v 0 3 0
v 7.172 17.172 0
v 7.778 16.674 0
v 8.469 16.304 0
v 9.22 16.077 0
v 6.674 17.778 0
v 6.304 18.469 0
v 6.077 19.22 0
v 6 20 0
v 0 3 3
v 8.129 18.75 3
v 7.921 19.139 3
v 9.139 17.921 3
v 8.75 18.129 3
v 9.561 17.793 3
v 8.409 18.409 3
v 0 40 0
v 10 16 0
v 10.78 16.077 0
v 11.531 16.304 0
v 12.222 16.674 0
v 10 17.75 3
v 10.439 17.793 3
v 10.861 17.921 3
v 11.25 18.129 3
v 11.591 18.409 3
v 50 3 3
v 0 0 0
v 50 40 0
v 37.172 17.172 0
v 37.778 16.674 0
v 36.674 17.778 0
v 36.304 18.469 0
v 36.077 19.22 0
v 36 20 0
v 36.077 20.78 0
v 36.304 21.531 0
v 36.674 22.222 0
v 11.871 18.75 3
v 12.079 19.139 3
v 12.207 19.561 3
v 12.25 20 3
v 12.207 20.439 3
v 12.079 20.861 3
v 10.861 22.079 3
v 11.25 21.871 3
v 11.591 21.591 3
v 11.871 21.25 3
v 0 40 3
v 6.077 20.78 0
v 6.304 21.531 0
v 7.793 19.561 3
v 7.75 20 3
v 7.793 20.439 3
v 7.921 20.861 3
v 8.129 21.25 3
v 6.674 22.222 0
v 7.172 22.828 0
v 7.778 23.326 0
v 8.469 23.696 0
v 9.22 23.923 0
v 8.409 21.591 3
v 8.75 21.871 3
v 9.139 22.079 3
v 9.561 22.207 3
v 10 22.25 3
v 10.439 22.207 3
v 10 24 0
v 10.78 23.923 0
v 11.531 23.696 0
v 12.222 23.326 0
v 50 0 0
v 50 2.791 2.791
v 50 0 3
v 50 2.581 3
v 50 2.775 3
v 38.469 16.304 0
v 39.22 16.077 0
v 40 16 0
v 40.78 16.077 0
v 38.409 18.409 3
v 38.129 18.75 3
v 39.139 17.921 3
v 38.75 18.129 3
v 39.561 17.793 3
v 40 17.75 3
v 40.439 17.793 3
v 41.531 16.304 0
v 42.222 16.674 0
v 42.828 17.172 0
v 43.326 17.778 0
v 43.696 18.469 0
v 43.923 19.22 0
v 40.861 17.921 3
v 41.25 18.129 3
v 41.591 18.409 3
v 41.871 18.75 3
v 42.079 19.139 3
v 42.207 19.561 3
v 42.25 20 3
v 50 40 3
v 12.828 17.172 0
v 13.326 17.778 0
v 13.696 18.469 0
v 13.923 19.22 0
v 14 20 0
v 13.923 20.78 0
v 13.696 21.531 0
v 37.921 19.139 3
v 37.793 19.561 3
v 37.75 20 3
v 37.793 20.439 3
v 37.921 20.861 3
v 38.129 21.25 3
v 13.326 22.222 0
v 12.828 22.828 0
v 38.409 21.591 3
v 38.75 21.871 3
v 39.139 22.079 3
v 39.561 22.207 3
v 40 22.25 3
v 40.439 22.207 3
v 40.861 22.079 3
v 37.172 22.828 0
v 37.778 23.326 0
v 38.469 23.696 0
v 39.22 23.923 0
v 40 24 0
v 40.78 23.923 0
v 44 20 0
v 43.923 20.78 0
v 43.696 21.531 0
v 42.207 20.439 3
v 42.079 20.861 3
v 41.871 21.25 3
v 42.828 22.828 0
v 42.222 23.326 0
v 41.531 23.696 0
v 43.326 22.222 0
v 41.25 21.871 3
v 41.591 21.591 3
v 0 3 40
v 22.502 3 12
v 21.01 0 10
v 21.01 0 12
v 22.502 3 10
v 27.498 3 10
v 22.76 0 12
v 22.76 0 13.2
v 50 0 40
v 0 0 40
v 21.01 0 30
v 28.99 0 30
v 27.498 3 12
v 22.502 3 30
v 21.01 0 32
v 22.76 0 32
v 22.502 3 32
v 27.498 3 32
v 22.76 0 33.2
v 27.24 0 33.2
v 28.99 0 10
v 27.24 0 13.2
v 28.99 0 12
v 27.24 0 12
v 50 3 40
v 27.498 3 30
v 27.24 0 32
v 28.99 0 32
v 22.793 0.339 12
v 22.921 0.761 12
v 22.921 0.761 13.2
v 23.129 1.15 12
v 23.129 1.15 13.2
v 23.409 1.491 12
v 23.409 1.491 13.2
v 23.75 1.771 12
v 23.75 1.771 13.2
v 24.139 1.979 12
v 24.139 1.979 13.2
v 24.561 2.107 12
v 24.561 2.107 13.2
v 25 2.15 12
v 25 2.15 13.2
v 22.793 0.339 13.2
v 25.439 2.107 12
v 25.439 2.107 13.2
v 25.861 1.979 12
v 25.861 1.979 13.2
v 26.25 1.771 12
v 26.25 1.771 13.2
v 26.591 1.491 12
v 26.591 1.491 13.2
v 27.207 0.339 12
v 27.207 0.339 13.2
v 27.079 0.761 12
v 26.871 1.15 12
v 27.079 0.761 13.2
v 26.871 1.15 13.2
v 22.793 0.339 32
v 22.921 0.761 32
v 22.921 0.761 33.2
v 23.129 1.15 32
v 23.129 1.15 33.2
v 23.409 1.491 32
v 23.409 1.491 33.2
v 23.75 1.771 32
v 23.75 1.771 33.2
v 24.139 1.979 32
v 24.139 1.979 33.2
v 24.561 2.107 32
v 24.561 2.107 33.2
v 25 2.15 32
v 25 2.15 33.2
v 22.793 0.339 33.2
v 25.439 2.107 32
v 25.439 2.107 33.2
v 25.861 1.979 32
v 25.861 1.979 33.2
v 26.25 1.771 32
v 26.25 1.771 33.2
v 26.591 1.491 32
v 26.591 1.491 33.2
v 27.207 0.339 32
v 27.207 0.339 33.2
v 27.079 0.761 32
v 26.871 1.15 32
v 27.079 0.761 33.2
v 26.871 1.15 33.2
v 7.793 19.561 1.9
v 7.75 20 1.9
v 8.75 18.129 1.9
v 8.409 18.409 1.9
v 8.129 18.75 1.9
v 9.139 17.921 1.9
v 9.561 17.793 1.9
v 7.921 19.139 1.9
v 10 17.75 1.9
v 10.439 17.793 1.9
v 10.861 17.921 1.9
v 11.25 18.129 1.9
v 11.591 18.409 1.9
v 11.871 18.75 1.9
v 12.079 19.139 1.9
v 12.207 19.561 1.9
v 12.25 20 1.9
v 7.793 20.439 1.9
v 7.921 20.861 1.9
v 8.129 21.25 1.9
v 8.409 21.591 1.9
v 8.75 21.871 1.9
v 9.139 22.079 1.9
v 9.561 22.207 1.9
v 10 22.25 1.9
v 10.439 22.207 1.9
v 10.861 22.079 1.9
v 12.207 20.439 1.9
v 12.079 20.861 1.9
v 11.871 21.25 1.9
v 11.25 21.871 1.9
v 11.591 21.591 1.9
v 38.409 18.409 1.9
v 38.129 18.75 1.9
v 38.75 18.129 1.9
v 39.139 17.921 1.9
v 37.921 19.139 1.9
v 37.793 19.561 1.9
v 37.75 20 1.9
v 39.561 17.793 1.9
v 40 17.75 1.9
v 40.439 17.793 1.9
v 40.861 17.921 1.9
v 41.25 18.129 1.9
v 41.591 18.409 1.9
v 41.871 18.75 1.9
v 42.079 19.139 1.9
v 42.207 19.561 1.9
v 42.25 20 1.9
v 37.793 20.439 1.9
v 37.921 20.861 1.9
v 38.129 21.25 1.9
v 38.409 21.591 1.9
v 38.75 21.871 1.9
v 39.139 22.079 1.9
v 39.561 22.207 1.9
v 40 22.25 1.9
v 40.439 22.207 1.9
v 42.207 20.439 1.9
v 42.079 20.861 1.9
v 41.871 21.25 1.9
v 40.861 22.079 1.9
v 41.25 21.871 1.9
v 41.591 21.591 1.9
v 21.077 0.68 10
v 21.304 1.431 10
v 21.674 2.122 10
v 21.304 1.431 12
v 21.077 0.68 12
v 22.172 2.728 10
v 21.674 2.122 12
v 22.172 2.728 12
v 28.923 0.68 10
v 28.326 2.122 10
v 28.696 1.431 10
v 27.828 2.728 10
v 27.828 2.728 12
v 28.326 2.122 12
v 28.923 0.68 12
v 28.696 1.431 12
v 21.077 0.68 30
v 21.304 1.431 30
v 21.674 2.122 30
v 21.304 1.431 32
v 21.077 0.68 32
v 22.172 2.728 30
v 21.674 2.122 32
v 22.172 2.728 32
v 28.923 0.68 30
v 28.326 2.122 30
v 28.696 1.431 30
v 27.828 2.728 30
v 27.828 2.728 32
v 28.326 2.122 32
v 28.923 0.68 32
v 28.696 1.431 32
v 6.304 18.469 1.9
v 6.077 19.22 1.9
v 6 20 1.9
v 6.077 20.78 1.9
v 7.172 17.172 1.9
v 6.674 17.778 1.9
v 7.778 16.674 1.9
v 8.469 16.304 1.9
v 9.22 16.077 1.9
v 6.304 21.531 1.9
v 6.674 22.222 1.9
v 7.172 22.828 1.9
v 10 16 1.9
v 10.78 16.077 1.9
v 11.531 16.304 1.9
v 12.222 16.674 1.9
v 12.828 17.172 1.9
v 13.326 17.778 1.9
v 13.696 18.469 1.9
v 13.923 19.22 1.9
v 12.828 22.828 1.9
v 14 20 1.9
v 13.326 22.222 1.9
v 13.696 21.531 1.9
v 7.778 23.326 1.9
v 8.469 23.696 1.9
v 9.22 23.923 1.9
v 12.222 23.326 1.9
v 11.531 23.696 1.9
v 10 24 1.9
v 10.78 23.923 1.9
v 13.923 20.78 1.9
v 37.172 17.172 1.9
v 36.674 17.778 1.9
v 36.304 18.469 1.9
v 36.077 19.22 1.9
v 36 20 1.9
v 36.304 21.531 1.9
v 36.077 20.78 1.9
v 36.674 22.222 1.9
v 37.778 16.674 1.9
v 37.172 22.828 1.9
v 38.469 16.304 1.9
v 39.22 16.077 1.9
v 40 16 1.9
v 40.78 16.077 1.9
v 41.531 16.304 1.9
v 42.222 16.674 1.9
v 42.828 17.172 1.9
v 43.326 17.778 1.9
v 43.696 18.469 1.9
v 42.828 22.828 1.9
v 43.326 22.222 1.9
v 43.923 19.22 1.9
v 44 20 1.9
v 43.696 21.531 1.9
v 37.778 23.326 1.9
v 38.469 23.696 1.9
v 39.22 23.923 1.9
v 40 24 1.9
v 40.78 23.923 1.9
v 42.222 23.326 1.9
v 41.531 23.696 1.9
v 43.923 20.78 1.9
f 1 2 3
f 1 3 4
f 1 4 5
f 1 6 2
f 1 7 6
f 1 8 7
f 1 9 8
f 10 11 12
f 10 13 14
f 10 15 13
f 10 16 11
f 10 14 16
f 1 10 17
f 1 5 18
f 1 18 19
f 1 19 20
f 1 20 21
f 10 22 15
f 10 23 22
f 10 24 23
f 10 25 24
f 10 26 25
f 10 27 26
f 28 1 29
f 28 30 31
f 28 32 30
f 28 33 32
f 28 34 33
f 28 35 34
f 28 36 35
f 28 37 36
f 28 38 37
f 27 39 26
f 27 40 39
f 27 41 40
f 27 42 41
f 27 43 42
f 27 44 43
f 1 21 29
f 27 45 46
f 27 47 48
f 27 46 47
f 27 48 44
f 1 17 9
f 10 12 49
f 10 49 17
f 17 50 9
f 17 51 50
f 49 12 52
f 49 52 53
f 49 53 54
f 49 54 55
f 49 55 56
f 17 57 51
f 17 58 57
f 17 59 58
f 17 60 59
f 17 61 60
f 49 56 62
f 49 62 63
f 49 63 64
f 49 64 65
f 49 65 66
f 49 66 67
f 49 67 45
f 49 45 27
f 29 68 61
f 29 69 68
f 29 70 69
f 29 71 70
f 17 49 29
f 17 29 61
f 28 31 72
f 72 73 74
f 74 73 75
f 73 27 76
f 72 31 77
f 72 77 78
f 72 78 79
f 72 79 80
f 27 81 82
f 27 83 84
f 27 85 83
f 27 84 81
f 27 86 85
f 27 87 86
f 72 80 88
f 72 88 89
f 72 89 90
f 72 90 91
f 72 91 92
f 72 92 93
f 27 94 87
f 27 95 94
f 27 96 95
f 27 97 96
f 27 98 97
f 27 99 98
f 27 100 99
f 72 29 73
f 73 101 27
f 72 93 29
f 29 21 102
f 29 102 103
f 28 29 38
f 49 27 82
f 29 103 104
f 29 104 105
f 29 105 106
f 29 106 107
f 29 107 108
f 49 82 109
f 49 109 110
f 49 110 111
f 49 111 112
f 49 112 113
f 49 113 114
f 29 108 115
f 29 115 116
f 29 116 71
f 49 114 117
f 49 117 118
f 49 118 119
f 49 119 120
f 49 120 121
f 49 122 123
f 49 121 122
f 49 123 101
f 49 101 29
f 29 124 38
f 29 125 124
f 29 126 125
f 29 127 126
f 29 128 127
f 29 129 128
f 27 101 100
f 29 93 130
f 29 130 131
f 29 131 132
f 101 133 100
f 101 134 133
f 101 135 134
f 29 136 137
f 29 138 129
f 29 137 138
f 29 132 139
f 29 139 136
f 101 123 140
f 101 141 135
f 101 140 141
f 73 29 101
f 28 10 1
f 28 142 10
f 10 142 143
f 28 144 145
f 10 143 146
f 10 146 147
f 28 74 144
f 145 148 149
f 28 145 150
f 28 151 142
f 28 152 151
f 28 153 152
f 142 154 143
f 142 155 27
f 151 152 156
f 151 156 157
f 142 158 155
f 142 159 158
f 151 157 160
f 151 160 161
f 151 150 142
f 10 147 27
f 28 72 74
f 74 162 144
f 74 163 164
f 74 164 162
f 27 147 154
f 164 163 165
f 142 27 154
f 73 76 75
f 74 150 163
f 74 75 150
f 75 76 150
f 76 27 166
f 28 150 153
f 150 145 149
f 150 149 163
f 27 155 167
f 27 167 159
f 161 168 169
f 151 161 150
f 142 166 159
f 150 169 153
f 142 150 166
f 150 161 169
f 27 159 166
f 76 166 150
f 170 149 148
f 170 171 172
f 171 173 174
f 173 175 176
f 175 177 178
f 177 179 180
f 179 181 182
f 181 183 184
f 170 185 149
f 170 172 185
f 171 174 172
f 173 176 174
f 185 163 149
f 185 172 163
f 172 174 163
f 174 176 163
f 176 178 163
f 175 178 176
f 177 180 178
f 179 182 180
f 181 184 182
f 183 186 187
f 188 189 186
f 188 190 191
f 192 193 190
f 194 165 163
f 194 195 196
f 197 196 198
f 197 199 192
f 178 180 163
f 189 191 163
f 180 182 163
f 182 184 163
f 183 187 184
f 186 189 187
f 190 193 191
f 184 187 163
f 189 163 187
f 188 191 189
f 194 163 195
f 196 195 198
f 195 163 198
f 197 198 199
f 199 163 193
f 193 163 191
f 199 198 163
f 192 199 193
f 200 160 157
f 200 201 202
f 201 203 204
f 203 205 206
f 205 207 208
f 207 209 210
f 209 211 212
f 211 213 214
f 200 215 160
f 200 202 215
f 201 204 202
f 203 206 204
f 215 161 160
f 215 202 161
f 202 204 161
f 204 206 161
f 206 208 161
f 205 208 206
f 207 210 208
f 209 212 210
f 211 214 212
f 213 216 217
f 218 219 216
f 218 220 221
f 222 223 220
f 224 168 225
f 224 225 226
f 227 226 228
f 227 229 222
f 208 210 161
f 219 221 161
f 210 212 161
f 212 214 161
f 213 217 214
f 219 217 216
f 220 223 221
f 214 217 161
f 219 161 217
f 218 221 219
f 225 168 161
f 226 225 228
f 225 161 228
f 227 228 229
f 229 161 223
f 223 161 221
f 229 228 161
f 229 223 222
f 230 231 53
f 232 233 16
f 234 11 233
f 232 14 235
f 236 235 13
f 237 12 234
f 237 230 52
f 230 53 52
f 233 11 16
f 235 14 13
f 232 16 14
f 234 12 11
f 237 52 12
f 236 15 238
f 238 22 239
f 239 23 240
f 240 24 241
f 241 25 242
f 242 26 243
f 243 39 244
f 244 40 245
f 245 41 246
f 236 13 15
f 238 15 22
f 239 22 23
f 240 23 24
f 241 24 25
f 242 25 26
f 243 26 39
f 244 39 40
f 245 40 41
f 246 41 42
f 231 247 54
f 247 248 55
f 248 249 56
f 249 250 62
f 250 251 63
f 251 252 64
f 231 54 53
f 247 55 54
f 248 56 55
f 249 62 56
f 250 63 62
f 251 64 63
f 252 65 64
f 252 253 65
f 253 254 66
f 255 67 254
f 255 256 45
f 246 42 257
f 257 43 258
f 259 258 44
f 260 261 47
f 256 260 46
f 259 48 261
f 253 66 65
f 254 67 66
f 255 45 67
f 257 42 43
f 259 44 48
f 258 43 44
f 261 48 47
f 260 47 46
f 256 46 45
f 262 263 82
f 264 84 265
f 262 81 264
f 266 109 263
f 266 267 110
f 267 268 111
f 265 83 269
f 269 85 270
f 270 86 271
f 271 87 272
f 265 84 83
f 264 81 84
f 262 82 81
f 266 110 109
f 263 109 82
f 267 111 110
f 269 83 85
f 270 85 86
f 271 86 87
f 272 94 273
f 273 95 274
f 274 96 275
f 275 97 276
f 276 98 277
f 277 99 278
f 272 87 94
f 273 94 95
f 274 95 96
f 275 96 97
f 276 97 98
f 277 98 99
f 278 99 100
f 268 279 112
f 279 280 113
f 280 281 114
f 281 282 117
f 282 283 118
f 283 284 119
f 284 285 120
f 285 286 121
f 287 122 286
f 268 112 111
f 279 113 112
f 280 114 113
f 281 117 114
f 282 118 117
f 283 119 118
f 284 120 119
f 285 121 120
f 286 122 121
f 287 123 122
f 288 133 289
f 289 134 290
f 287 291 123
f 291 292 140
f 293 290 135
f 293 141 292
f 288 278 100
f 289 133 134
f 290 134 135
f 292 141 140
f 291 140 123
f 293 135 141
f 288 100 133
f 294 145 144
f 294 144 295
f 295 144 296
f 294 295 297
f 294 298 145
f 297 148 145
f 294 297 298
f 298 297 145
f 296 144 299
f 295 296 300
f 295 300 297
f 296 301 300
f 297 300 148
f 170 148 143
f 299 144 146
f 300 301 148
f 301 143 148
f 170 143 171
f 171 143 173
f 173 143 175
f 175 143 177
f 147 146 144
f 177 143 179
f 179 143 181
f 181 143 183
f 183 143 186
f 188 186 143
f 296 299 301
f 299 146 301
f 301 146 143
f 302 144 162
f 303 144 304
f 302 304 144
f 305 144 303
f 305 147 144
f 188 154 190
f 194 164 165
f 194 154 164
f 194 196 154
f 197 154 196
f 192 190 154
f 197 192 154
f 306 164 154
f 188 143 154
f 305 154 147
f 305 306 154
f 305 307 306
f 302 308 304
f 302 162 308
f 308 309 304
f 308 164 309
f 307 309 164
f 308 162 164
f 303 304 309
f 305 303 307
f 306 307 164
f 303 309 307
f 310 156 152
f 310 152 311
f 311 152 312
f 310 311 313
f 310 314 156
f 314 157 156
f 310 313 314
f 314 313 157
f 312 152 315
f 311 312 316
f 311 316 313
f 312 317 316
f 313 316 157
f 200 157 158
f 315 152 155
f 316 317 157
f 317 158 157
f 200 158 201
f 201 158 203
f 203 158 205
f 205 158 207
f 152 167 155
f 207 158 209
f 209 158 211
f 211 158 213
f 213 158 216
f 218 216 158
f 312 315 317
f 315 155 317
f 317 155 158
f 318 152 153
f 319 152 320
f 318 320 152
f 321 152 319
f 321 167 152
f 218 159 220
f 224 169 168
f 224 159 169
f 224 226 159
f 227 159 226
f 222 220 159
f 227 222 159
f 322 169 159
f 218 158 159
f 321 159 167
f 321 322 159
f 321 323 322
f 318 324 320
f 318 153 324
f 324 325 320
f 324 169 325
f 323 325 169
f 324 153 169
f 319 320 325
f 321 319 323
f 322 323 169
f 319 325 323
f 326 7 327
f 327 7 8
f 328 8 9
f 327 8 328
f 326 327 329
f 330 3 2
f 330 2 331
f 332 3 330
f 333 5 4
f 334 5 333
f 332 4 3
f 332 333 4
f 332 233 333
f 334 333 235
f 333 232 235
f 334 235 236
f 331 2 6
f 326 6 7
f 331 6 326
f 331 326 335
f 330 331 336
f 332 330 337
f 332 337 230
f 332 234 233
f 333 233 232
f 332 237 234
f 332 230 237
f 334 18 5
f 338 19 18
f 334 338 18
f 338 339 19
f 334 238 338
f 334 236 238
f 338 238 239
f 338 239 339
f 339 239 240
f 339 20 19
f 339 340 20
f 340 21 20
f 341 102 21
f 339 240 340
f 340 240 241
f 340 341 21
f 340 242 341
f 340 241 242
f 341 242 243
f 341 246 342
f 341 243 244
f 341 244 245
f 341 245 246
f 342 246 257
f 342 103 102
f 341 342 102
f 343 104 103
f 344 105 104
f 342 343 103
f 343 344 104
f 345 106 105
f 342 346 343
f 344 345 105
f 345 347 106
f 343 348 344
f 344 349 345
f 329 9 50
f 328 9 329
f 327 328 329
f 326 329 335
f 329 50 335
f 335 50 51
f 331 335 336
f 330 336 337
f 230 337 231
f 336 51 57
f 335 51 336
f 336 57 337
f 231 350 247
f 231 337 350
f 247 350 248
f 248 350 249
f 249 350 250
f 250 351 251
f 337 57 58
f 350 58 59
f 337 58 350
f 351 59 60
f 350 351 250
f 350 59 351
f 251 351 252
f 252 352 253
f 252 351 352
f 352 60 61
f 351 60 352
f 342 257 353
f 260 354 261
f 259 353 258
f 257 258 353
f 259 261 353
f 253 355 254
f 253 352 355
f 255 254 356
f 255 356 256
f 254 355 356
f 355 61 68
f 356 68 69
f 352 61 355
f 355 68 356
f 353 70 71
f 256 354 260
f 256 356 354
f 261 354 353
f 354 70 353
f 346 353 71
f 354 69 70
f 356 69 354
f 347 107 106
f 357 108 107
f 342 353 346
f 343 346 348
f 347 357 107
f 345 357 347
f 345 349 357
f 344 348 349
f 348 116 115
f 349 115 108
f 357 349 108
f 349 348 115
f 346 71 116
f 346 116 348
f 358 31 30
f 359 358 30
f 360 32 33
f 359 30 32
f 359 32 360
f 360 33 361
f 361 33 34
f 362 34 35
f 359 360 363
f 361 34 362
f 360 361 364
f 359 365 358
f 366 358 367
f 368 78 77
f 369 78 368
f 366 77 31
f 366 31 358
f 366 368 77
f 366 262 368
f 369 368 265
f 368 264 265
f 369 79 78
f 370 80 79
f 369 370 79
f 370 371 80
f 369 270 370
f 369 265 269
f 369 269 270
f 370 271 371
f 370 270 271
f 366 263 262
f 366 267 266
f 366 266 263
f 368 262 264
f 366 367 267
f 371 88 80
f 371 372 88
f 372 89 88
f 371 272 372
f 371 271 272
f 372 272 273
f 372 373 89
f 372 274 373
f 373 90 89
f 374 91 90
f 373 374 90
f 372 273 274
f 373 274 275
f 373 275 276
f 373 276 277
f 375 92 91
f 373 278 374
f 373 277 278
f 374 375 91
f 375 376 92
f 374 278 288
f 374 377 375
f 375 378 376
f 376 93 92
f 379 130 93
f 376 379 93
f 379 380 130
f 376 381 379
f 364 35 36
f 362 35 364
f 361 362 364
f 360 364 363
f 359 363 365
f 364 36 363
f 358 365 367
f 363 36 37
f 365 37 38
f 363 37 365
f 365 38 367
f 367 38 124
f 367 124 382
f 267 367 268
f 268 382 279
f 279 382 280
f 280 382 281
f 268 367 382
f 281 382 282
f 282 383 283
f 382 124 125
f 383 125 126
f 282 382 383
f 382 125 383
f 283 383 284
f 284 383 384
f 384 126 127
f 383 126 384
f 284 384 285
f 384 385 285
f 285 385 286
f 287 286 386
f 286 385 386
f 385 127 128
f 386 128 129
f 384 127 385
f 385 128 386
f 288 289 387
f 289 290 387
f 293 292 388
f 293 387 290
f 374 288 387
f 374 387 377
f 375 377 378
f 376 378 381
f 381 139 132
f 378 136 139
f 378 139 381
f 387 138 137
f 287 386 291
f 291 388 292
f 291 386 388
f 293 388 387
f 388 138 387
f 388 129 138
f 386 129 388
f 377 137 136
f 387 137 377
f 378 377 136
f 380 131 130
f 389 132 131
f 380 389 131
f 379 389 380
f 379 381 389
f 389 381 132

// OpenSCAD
// L-bracket with countersunk holes

// Parameters
horizontal_width = 50;  // mm
horizontal_depth = 40;  // mm
vertical_width = 50;    // mm
vertical_height = 40;   // mm
thickness = 3;          // mm

// Hole parameters
hole_diameter = 4.5;    // mm
countersink_diameter = 8;  // mm
countersink_depth = 2;  // mm
hole_offset_from_edge = 10;  // mm from edge

// Countersunk hole
module countersunk_hole(depth = 50) {
    // Through hole
    cylinder(h = depth, r = hole_diameter / 2, center = false, $fn = 32);
    
    // Countersink
    cylinder(h = countersink_depth, r = countersink_diameter / 2, center = false, $fn = 32);
}

// Main L-bracket shape
// Inner corner at origin, horizontal flange extends in +Y, vertical flange extends in +Z
module l_bracket() {
    // Horizontal flange (XY plane, at Z=0 to Z=thickness)
    // Extends from X=0 to X=width, Y=0 to Y=depth, Z=0 to Z=thickness
    cube([horizontal_width, horizontal_depth, thickness]);
    
    // Vertical flange (XZ plane, at Y=0 to Y=thickness)
    // Extends from X=0 to X=width, Y=0 to Y=thickness, Z=0 to Z=height
    cube([vertical_width, thickness, vertical_height]);
}

// Holes for horizontal flange (top side, Z direction, countersink facing up)
module horizontal_flange_holes() {
    hole_y = horizontal_depth / 2;
    
    // Left hole
    hole_x_left = hole_offset_from_edge;
    translate([hole_x_left, hole_y, -0.1]) {
        countersunk_hole(thickness + 0.2);
    }
    
    // Right hole
    hole_x_right = horizontal_width - hole_offset_from_edge;
    translate([hole_x_right, hole_y, -0.1]) {
        countersunk_hole(thickness + 0.2);
    }
}

// Holes for vertical flange (front side, Y direction, countersink facing forward -Y)
module vertical_flange_holes() {
    hole_x = vertical_width / 2;
    
    // Bottom hole
    hole_z_bottom = hole_offset_from_edge;
    translate([hole_x, -0.1, hole_z_bottom]) {
        rotate([0, 0, 0]) {
            countersunk_hole(thickness + 0.2);
        }
    }
    
    // Top hole
    hole_z_top = vertical_height - hole_offset_from_edge;
    translate([hole_x, -0.1, hole_z_top]) {
        countersunk_hole(thickness + 0.2);
    }
}

// Main assembly
difference() {
    l_bracket();
    horizontal_flange_holes();
    vertical_flange_holes();
}
